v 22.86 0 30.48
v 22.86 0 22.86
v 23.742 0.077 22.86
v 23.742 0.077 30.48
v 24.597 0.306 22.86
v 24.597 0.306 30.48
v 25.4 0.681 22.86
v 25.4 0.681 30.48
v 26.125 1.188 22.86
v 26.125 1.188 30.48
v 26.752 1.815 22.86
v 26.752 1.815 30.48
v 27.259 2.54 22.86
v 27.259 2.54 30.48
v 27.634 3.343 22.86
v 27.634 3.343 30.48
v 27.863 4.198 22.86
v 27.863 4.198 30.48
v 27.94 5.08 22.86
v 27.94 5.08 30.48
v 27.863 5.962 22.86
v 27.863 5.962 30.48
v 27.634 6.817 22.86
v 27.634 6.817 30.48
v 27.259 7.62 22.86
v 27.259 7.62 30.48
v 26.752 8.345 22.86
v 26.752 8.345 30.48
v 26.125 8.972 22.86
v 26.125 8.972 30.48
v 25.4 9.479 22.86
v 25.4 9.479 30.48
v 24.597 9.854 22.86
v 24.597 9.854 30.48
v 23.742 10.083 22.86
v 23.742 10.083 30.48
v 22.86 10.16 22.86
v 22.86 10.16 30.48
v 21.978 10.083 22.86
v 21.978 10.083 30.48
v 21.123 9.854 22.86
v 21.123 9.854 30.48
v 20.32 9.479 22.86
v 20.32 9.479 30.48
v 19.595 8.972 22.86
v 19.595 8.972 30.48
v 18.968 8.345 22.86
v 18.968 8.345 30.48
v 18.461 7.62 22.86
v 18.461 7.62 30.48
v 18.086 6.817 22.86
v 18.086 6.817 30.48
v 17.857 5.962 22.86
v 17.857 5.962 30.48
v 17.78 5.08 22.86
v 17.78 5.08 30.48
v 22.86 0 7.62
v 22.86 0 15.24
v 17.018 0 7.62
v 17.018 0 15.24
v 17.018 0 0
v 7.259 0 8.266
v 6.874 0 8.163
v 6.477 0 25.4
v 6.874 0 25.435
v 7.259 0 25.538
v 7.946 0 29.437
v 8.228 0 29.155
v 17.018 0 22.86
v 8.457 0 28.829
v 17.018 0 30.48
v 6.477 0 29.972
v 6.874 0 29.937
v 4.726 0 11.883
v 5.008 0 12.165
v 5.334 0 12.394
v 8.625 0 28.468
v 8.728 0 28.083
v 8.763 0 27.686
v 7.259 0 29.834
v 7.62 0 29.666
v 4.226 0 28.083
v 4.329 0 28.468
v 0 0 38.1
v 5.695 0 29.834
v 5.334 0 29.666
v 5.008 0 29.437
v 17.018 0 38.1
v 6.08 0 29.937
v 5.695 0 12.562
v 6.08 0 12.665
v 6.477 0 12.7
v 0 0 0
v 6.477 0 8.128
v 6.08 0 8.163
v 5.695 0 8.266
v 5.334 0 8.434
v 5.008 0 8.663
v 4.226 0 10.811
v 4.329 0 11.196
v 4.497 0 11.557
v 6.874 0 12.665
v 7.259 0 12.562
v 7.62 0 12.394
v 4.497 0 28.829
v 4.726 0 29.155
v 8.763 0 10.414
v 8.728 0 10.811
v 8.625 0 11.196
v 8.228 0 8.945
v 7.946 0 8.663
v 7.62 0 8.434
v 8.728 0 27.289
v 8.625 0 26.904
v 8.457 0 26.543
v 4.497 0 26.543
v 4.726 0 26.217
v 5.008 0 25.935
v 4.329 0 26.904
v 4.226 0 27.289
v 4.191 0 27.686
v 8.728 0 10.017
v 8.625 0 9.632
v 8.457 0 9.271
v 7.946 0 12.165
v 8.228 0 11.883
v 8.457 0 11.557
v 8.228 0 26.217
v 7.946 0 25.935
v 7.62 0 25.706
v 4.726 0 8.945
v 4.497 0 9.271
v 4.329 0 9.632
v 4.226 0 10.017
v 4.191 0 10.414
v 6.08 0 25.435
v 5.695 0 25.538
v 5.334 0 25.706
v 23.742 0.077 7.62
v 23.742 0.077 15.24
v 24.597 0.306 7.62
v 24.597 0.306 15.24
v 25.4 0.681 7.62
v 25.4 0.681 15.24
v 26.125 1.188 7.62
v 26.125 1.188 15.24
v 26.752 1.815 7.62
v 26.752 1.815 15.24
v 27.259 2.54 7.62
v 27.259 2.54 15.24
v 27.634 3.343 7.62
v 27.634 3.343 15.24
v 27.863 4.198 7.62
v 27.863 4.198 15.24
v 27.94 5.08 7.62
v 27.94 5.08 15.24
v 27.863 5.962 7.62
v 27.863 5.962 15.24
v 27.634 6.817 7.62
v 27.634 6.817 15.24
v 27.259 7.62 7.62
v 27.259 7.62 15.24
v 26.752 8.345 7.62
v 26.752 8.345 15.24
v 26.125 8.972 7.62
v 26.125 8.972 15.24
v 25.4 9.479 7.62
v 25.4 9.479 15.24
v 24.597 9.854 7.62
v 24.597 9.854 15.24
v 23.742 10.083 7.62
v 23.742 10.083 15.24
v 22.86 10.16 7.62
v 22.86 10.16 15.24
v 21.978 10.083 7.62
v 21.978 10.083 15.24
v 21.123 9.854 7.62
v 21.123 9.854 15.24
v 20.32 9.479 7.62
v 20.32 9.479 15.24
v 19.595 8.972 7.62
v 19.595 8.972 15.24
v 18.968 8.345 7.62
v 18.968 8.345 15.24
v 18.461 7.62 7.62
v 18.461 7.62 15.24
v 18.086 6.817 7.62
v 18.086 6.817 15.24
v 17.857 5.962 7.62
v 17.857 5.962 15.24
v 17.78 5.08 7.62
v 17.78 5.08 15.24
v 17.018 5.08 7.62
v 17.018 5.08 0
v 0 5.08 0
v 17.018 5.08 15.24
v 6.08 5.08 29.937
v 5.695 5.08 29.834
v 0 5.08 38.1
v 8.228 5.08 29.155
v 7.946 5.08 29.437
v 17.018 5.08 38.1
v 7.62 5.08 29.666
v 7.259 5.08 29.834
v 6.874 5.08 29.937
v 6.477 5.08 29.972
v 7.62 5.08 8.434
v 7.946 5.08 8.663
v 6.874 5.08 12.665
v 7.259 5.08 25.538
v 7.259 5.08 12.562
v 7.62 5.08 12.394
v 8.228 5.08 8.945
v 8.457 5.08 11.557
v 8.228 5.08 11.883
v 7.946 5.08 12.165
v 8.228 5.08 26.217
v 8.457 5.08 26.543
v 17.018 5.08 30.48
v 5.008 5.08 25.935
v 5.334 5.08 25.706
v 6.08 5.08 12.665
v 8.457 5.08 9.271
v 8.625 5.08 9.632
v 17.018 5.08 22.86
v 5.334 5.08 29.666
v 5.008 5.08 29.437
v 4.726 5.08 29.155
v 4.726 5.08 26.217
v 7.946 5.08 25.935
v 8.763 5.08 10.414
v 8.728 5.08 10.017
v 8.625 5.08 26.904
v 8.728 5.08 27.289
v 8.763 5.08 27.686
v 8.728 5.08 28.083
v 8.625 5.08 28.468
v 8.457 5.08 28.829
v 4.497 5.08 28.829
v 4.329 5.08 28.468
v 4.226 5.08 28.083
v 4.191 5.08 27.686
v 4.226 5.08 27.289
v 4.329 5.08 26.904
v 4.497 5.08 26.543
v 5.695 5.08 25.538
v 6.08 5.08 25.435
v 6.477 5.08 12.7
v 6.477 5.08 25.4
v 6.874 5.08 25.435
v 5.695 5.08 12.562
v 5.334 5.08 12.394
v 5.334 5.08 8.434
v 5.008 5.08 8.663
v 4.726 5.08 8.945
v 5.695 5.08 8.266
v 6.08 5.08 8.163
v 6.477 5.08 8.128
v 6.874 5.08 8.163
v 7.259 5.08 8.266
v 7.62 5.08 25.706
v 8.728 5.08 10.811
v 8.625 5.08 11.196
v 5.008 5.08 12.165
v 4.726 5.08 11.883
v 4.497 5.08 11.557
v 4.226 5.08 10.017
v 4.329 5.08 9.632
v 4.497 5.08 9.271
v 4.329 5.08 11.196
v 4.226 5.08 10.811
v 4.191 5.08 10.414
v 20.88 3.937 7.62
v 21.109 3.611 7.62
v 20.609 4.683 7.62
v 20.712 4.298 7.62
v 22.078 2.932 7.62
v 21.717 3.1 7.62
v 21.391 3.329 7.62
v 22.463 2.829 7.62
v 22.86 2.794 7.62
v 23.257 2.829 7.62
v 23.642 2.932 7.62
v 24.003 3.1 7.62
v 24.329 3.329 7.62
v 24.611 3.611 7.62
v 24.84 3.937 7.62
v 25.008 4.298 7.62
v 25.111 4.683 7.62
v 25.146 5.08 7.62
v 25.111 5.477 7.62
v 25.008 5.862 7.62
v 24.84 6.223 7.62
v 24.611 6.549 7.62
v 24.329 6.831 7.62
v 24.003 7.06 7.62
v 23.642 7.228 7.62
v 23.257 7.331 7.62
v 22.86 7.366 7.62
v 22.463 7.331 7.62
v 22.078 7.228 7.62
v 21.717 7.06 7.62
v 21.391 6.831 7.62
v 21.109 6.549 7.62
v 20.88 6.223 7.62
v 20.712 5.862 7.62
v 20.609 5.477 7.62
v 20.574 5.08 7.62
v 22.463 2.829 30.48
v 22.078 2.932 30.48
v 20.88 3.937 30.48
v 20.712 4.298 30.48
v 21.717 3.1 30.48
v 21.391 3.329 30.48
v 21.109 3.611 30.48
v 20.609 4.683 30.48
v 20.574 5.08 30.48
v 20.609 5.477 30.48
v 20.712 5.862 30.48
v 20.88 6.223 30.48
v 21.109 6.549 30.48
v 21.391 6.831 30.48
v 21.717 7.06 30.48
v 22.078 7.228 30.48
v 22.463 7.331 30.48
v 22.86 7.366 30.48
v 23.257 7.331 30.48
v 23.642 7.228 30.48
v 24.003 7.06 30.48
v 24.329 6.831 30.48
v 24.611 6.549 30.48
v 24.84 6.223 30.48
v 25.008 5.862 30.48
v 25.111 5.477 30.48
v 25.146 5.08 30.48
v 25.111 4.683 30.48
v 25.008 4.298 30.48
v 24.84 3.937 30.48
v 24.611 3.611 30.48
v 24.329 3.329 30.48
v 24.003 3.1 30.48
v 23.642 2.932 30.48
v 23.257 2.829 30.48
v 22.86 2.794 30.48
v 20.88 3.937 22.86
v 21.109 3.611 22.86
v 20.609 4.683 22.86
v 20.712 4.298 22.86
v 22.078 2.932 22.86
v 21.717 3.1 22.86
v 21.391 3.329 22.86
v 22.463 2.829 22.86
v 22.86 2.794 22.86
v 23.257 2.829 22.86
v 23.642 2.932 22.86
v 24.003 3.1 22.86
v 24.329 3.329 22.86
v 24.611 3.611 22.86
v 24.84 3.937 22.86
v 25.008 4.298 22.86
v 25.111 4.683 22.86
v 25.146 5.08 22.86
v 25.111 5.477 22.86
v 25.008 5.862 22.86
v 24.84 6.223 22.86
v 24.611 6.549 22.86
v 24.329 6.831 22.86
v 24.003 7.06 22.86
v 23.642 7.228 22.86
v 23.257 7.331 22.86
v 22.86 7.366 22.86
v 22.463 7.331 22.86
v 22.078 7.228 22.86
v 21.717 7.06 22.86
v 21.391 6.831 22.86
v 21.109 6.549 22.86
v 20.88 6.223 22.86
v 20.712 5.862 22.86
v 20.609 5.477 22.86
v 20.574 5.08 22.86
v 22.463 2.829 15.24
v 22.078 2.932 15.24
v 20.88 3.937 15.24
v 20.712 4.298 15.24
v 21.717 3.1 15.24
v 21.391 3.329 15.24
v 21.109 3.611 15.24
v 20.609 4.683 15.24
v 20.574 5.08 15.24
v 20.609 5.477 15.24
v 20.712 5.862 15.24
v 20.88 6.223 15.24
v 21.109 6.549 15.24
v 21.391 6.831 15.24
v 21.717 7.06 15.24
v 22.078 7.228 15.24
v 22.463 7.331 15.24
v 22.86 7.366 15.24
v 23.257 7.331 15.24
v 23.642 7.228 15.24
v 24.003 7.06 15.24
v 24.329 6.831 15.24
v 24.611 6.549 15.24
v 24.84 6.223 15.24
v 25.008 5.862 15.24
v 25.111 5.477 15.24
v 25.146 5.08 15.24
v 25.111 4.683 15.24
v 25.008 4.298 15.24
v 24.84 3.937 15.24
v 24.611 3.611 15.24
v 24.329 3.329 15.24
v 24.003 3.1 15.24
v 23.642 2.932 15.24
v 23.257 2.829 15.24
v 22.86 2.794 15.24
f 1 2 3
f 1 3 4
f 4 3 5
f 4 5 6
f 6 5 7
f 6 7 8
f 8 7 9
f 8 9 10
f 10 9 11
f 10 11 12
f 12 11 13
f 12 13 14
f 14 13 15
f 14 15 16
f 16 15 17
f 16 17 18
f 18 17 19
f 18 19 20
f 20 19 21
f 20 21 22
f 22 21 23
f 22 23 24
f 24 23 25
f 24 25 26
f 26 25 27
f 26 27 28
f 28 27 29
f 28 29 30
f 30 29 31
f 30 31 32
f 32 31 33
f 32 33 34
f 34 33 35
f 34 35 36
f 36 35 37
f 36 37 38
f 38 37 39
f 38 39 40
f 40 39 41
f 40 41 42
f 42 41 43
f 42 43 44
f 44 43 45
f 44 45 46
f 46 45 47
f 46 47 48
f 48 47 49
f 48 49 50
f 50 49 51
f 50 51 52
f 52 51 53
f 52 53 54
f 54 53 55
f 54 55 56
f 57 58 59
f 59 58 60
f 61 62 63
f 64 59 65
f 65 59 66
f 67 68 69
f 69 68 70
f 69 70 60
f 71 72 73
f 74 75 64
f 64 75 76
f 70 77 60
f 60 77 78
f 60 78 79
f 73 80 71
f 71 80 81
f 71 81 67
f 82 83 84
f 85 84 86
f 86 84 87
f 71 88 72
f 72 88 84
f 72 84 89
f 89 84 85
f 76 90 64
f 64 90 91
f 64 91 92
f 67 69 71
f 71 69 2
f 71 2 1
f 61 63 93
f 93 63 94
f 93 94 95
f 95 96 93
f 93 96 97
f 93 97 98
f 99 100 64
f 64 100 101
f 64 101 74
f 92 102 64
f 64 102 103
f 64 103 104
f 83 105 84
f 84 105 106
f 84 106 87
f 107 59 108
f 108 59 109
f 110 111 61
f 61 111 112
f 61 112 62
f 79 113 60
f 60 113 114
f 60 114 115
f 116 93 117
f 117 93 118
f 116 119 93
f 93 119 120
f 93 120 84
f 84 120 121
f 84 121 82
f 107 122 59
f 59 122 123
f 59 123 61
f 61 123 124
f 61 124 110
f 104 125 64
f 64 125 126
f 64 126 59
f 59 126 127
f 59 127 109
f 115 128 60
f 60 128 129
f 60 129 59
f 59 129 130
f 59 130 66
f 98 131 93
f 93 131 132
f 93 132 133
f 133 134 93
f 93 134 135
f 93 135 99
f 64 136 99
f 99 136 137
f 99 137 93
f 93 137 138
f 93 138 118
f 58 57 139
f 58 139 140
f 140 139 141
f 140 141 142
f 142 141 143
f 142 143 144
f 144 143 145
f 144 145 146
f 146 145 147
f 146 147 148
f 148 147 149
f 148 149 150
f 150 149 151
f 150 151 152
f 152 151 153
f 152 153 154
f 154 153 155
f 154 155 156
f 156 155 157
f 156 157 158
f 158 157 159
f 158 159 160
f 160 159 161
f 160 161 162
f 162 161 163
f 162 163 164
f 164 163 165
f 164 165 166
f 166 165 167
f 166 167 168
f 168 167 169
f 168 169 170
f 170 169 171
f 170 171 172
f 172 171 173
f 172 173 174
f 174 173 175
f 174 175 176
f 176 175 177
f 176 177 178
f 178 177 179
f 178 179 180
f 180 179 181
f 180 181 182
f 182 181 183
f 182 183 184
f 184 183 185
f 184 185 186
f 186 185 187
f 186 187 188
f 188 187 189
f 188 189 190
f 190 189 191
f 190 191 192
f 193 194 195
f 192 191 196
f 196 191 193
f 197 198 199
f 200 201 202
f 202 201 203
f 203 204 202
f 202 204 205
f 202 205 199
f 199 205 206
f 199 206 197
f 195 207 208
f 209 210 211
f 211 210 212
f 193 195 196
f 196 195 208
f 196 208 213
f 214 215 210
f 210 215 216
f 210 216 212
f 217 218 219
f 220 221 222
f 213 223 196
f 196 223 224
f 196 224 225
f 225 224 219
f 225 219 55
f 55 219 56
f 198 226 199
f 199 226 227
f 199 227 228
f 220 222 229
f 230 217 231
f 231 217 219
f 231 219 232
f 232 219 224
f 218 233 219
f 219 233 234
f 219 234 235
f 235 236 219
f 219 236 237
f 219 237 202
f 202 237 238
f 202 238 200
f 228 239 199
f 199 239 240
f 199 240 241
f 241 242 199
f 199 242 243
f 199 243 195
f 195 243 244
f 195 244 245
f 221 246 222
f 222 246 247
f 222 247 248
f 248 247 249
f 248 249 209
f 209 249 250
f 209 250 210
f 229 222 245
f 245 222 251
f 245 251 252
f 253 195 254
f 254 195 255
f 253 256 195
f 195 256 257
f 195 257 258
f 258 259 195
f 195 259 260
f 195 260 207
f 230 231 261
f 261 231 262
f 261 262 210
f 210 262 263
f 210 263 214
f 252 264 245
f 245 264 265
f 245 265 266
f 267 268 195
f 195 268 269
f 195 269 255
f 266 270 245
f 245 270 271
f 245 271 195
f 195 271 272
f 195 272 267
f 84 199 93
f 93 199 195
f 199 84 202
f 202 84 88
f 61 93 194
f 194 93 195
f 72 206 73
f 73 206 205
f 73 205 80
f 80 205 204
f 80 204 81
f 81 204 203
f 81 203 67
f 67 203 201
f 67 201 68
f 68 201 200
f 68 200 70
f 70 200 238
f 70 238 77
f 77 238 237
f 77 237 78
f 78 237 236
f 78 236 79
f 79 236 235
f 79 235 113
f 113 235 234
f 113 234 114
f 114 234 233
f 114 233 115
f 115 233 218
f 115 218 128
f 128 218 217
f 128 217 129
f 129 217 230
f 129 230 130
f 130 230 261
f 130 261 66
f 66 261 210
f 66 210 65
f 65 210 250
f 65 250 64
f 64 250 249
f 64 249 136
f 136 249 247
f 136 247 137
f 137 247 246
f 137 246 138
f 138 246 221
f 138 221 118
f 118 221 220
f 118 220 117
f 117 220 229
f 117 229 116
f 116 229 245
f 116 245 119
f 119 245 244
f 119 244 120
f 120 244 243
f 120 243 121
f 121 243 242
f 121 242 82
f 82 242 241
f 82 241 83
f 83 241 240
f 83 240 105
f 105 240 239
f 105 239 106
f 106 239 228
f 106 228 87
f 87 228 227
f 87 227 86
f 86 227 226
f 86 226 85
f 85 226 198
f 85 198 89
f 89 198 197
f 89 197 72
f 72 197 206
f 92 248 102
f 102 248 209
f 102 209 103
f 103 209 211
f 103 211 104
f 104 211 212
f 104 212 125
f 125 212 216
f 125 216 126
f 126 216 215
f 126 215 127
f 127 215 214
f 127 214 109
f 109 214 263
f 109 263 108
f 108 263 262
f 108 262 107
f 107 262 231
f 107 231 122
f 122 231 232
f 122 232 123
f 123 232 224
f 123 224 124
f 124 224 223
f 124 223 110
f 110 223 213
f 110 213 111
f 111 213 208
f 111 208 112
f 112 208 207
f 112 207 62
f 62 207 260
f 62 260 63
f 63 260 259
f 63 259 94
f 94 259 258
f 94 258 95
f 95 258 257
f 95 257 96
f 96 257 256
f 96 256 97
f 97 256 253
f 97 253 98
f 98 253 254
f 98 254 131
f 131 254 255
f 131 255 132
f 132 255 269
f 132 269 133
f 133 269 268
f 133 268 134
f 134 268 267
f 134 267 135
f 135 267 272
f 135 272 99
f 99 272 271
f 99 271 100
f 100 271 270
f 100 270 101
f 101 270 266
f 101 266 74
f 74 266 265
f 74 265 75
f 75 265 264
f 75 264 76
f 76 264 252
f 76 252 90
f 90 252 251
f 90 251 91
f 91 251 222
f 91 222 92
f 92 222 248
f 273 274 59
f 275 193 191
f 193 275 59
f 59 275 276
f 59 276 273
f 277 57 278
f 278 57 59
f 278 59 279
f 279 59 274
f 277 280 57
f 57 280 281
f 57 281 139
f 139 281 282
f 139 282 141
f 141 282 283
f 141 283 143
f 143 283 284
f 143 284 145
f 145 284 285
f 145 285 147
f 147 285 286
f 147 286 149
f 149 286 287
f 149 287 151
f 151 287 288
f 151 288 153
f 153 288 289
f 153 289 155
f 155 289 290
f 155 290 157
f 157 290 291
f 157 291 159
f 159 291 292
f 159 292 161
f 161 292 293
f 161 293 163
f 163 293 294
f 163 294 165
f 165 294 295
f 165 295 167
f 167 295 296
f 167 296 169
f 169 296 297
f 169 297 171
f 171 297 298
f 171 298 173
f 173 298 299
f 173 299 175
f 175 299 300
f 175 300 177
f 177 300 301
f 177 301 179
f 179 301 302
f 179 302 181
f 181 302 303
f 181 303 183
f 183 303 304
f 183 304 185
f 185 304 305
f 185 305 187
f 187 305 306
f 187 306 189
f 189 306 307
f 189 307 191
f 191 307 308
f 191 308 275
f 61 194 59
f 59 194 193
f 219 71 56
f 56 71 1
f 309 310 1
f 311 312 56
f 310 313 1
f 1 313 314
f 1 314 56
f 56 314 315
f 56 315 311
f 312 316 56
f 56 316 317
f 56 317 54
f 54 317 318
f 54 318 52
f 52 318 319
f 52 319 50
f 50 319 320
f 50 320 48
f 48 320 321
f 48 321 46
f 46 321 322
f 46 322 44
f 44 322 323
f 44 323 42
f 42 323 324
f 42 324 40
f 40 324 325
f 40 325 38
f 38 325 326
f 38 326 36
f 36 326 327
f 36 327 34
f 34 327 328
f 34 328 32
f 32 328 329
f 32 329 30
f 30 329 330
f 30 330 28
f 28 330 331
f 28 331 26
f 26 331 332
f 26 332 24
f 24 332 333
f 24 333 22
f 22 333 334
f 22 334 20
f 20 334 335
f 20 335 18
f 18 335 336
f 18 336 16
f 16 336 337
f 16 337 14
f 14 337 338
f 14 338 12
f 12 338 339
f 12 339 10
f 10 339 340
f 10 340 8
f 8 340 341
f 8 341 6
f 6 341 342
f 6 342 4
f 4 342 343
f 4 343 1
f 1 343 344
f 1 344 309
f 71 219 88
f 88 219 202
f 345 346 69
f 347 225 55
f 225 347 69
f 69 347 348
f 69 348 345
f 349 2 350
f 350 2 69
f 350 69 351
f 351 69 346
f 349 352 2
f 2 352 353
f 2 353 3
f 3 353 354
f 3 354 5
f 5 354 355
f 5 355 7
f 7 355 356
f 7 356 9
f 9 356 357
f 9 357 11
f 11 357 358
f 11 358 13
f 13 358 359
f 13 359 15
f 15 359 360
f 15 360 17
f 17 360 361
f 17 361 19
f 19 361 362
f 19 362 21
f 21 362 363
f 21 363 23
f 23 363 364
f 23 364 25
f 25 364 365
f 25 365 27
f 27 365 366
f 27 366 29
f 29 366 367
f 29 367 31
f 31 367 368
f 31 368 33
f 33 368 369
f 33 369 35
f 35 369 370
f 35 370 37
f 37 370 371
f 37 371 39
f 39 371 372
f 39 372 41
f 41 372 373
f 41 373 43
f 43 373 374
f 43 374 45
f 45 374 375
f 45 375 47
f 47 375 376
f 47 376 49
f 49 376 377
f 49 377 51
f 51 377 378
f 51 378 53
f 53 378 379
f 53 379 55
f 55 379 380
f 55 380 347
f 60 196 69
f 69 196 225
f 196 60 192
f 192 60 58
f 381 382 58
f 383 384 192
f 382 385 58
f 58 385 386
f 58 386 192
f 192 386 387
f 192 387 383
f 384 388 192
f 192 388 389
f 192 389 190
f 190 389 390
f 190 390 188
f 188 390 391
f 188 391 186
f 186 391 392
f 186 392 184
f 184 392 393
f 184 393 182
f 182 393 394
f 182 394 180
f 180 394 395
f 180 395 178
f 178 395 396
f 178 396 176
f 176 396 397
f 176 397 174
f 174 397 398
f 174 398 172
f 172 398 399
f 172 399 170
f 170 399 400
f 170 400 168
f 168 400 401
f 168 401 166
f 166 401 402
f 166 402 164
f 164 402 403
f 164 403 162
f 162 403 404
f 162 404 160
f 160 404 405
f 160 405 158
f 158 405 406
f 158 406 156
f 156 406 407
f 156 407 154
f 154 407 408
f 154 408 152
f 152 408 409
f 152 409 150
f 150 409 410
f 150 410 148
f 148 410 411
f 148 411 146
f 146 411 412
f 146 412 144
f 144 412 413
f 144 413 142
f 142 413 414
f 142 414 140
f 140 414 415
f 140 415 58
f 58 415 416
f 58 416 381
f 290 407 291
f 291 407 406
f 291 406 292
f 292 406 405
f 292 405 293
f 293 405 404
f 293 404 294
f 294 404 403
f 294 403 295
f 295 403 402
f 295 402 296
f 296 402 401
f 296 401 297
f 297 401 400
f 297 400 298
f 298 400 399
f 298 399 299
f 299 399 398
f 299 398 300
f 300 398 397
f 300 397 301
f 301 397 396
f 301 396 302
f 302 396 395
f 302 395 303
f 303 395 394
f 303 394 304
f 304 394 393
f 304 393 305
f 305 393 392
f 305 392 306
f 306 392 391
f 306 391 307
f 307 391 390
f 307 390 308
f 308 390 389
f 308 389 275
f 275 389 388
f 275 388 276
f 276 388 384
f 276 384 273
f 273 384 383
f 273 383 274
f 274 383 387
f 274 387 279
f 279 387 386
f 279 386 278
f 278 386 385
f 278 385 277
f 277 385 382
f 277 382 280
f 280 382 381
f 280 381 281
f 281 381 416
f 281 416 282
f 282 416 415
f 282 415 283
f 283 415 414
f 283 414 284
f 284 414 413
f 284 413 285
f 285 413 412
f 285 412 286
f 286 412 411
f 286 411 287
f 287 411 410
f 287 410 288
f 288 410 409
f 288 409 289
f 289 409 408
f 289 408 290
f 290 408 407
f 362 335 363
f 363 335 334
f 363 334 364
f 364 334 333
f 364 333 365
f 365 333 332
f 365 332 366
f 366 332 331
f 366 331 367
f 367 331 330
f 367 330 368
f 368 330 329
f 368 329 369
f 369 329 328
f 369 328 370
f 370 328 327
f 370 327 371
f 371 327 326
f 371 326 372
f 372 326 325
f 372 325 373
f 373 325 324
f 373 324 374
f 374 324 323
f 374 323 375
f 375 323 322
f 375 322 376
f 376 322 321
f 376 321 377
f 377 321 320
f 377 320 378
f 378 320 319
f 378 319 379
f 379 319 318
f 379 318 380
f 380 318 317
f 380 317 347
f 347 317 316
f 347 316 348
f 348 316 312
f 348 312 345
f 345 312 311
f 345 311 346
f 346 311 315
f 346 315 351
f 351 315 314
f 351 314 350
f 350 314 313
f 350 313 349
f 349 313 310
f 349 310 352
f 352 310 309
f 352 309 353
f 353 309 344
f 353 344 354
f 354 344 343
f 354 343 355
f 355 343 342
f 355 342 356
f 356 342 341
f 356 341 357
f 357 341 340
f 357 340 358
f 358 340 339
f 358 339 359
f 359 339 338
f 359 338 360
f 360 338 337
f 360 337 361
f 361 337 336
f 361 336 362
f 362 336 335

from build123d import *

# Parameters (mm, degrees)
BOSS_EXTRUDE1_DEPTH     = 38.1
SKETCH3_R               = 2.286
CUT_EXTRUDE2_DEPTH      = 6.08
SKETCH4_W               = 10.922
SKETCH4_H               = 7.62
CUT_EXTRUDE3_DEPTH      = 6.08
CUT_EXTRUDE3_DEPTH_BACK = 6.08
SKETCH7_R               = 2.286
CUT_EXTRUDE4_DEPTH      = 31.48


with BuildPart() as part:
    # Sketch1 → Boss-Extrude1 (new body)
    with BuildSketch(Plane.XY):
        with BuildLine():
            Line((0, 0), (0, 5.08))
            Line((0, 5.08), (17.78, 5.08))
            ThreePointArc((17.78, 5.08), (26.452102448, 8.672102448), (22.86, 0))
            Line((22.86, 0), (0, 0))
        make_face()
    extrude(amount=BOSS_EXTRUDE1_DEPTH)

    # Sketch3 → Cut-Extrude2 (cut, through all)
    with BuildSketch(Plane(origin=(0, 5.08, 0), x_dir=(1, 0, 0), z_dir=(0, 1, 0))):
        with Locations((6.477, -10.414)):
            Circle(SKETCH3_R)
        with Locations((6.477, -27.686)):
            Circle(SKETCH3_R)
    extrude(amount=-CUT_EXTRUDE2_DEPTH, mode=Mode.SUBTRACT)

    # Sketch4 → Cut-Extrude3 (cut, two sides)
    with BuildSketch(Plane(origin=(0, 5.08, 0), x_dir=(1, 0, 0), z_dir=(0, 1, 0))) as cut_extrude3_sk:
        with Locations((22.479, -3.81)):
            Rectangle(SKETCH4_W, SKETCH4_H)
        with Locations((22.479, -34.29)):
            Rectangle(SKETCH4_W, SKETCH4_H)
        with Locations((22.479, -19.05)):
            Rectangle(SKETCH4_W, SKETCH4_H)
    extrude(amount=CUT_EXTRUDE3_DEPTH, mode=Mode.SUBTRACT)
    extrude(cut_extrude3_sk.sketch, amount=-CUT_EXTRUDE3_DEPTH_BACK, mode=Mode.SUBTRACT)

    # Sketch7 → Cut-Extrude4 (cut, through all)
    with BuildSketch(Plane.XY.offset(30.48)):
        with Locations((22.86, 5.08)):
            Circle(SKETCH7_R)
    extrude(amount=-CUT_EXTRUDE4_DEPTH, mode=Mode.SUBTRACT)


solid = part.part
